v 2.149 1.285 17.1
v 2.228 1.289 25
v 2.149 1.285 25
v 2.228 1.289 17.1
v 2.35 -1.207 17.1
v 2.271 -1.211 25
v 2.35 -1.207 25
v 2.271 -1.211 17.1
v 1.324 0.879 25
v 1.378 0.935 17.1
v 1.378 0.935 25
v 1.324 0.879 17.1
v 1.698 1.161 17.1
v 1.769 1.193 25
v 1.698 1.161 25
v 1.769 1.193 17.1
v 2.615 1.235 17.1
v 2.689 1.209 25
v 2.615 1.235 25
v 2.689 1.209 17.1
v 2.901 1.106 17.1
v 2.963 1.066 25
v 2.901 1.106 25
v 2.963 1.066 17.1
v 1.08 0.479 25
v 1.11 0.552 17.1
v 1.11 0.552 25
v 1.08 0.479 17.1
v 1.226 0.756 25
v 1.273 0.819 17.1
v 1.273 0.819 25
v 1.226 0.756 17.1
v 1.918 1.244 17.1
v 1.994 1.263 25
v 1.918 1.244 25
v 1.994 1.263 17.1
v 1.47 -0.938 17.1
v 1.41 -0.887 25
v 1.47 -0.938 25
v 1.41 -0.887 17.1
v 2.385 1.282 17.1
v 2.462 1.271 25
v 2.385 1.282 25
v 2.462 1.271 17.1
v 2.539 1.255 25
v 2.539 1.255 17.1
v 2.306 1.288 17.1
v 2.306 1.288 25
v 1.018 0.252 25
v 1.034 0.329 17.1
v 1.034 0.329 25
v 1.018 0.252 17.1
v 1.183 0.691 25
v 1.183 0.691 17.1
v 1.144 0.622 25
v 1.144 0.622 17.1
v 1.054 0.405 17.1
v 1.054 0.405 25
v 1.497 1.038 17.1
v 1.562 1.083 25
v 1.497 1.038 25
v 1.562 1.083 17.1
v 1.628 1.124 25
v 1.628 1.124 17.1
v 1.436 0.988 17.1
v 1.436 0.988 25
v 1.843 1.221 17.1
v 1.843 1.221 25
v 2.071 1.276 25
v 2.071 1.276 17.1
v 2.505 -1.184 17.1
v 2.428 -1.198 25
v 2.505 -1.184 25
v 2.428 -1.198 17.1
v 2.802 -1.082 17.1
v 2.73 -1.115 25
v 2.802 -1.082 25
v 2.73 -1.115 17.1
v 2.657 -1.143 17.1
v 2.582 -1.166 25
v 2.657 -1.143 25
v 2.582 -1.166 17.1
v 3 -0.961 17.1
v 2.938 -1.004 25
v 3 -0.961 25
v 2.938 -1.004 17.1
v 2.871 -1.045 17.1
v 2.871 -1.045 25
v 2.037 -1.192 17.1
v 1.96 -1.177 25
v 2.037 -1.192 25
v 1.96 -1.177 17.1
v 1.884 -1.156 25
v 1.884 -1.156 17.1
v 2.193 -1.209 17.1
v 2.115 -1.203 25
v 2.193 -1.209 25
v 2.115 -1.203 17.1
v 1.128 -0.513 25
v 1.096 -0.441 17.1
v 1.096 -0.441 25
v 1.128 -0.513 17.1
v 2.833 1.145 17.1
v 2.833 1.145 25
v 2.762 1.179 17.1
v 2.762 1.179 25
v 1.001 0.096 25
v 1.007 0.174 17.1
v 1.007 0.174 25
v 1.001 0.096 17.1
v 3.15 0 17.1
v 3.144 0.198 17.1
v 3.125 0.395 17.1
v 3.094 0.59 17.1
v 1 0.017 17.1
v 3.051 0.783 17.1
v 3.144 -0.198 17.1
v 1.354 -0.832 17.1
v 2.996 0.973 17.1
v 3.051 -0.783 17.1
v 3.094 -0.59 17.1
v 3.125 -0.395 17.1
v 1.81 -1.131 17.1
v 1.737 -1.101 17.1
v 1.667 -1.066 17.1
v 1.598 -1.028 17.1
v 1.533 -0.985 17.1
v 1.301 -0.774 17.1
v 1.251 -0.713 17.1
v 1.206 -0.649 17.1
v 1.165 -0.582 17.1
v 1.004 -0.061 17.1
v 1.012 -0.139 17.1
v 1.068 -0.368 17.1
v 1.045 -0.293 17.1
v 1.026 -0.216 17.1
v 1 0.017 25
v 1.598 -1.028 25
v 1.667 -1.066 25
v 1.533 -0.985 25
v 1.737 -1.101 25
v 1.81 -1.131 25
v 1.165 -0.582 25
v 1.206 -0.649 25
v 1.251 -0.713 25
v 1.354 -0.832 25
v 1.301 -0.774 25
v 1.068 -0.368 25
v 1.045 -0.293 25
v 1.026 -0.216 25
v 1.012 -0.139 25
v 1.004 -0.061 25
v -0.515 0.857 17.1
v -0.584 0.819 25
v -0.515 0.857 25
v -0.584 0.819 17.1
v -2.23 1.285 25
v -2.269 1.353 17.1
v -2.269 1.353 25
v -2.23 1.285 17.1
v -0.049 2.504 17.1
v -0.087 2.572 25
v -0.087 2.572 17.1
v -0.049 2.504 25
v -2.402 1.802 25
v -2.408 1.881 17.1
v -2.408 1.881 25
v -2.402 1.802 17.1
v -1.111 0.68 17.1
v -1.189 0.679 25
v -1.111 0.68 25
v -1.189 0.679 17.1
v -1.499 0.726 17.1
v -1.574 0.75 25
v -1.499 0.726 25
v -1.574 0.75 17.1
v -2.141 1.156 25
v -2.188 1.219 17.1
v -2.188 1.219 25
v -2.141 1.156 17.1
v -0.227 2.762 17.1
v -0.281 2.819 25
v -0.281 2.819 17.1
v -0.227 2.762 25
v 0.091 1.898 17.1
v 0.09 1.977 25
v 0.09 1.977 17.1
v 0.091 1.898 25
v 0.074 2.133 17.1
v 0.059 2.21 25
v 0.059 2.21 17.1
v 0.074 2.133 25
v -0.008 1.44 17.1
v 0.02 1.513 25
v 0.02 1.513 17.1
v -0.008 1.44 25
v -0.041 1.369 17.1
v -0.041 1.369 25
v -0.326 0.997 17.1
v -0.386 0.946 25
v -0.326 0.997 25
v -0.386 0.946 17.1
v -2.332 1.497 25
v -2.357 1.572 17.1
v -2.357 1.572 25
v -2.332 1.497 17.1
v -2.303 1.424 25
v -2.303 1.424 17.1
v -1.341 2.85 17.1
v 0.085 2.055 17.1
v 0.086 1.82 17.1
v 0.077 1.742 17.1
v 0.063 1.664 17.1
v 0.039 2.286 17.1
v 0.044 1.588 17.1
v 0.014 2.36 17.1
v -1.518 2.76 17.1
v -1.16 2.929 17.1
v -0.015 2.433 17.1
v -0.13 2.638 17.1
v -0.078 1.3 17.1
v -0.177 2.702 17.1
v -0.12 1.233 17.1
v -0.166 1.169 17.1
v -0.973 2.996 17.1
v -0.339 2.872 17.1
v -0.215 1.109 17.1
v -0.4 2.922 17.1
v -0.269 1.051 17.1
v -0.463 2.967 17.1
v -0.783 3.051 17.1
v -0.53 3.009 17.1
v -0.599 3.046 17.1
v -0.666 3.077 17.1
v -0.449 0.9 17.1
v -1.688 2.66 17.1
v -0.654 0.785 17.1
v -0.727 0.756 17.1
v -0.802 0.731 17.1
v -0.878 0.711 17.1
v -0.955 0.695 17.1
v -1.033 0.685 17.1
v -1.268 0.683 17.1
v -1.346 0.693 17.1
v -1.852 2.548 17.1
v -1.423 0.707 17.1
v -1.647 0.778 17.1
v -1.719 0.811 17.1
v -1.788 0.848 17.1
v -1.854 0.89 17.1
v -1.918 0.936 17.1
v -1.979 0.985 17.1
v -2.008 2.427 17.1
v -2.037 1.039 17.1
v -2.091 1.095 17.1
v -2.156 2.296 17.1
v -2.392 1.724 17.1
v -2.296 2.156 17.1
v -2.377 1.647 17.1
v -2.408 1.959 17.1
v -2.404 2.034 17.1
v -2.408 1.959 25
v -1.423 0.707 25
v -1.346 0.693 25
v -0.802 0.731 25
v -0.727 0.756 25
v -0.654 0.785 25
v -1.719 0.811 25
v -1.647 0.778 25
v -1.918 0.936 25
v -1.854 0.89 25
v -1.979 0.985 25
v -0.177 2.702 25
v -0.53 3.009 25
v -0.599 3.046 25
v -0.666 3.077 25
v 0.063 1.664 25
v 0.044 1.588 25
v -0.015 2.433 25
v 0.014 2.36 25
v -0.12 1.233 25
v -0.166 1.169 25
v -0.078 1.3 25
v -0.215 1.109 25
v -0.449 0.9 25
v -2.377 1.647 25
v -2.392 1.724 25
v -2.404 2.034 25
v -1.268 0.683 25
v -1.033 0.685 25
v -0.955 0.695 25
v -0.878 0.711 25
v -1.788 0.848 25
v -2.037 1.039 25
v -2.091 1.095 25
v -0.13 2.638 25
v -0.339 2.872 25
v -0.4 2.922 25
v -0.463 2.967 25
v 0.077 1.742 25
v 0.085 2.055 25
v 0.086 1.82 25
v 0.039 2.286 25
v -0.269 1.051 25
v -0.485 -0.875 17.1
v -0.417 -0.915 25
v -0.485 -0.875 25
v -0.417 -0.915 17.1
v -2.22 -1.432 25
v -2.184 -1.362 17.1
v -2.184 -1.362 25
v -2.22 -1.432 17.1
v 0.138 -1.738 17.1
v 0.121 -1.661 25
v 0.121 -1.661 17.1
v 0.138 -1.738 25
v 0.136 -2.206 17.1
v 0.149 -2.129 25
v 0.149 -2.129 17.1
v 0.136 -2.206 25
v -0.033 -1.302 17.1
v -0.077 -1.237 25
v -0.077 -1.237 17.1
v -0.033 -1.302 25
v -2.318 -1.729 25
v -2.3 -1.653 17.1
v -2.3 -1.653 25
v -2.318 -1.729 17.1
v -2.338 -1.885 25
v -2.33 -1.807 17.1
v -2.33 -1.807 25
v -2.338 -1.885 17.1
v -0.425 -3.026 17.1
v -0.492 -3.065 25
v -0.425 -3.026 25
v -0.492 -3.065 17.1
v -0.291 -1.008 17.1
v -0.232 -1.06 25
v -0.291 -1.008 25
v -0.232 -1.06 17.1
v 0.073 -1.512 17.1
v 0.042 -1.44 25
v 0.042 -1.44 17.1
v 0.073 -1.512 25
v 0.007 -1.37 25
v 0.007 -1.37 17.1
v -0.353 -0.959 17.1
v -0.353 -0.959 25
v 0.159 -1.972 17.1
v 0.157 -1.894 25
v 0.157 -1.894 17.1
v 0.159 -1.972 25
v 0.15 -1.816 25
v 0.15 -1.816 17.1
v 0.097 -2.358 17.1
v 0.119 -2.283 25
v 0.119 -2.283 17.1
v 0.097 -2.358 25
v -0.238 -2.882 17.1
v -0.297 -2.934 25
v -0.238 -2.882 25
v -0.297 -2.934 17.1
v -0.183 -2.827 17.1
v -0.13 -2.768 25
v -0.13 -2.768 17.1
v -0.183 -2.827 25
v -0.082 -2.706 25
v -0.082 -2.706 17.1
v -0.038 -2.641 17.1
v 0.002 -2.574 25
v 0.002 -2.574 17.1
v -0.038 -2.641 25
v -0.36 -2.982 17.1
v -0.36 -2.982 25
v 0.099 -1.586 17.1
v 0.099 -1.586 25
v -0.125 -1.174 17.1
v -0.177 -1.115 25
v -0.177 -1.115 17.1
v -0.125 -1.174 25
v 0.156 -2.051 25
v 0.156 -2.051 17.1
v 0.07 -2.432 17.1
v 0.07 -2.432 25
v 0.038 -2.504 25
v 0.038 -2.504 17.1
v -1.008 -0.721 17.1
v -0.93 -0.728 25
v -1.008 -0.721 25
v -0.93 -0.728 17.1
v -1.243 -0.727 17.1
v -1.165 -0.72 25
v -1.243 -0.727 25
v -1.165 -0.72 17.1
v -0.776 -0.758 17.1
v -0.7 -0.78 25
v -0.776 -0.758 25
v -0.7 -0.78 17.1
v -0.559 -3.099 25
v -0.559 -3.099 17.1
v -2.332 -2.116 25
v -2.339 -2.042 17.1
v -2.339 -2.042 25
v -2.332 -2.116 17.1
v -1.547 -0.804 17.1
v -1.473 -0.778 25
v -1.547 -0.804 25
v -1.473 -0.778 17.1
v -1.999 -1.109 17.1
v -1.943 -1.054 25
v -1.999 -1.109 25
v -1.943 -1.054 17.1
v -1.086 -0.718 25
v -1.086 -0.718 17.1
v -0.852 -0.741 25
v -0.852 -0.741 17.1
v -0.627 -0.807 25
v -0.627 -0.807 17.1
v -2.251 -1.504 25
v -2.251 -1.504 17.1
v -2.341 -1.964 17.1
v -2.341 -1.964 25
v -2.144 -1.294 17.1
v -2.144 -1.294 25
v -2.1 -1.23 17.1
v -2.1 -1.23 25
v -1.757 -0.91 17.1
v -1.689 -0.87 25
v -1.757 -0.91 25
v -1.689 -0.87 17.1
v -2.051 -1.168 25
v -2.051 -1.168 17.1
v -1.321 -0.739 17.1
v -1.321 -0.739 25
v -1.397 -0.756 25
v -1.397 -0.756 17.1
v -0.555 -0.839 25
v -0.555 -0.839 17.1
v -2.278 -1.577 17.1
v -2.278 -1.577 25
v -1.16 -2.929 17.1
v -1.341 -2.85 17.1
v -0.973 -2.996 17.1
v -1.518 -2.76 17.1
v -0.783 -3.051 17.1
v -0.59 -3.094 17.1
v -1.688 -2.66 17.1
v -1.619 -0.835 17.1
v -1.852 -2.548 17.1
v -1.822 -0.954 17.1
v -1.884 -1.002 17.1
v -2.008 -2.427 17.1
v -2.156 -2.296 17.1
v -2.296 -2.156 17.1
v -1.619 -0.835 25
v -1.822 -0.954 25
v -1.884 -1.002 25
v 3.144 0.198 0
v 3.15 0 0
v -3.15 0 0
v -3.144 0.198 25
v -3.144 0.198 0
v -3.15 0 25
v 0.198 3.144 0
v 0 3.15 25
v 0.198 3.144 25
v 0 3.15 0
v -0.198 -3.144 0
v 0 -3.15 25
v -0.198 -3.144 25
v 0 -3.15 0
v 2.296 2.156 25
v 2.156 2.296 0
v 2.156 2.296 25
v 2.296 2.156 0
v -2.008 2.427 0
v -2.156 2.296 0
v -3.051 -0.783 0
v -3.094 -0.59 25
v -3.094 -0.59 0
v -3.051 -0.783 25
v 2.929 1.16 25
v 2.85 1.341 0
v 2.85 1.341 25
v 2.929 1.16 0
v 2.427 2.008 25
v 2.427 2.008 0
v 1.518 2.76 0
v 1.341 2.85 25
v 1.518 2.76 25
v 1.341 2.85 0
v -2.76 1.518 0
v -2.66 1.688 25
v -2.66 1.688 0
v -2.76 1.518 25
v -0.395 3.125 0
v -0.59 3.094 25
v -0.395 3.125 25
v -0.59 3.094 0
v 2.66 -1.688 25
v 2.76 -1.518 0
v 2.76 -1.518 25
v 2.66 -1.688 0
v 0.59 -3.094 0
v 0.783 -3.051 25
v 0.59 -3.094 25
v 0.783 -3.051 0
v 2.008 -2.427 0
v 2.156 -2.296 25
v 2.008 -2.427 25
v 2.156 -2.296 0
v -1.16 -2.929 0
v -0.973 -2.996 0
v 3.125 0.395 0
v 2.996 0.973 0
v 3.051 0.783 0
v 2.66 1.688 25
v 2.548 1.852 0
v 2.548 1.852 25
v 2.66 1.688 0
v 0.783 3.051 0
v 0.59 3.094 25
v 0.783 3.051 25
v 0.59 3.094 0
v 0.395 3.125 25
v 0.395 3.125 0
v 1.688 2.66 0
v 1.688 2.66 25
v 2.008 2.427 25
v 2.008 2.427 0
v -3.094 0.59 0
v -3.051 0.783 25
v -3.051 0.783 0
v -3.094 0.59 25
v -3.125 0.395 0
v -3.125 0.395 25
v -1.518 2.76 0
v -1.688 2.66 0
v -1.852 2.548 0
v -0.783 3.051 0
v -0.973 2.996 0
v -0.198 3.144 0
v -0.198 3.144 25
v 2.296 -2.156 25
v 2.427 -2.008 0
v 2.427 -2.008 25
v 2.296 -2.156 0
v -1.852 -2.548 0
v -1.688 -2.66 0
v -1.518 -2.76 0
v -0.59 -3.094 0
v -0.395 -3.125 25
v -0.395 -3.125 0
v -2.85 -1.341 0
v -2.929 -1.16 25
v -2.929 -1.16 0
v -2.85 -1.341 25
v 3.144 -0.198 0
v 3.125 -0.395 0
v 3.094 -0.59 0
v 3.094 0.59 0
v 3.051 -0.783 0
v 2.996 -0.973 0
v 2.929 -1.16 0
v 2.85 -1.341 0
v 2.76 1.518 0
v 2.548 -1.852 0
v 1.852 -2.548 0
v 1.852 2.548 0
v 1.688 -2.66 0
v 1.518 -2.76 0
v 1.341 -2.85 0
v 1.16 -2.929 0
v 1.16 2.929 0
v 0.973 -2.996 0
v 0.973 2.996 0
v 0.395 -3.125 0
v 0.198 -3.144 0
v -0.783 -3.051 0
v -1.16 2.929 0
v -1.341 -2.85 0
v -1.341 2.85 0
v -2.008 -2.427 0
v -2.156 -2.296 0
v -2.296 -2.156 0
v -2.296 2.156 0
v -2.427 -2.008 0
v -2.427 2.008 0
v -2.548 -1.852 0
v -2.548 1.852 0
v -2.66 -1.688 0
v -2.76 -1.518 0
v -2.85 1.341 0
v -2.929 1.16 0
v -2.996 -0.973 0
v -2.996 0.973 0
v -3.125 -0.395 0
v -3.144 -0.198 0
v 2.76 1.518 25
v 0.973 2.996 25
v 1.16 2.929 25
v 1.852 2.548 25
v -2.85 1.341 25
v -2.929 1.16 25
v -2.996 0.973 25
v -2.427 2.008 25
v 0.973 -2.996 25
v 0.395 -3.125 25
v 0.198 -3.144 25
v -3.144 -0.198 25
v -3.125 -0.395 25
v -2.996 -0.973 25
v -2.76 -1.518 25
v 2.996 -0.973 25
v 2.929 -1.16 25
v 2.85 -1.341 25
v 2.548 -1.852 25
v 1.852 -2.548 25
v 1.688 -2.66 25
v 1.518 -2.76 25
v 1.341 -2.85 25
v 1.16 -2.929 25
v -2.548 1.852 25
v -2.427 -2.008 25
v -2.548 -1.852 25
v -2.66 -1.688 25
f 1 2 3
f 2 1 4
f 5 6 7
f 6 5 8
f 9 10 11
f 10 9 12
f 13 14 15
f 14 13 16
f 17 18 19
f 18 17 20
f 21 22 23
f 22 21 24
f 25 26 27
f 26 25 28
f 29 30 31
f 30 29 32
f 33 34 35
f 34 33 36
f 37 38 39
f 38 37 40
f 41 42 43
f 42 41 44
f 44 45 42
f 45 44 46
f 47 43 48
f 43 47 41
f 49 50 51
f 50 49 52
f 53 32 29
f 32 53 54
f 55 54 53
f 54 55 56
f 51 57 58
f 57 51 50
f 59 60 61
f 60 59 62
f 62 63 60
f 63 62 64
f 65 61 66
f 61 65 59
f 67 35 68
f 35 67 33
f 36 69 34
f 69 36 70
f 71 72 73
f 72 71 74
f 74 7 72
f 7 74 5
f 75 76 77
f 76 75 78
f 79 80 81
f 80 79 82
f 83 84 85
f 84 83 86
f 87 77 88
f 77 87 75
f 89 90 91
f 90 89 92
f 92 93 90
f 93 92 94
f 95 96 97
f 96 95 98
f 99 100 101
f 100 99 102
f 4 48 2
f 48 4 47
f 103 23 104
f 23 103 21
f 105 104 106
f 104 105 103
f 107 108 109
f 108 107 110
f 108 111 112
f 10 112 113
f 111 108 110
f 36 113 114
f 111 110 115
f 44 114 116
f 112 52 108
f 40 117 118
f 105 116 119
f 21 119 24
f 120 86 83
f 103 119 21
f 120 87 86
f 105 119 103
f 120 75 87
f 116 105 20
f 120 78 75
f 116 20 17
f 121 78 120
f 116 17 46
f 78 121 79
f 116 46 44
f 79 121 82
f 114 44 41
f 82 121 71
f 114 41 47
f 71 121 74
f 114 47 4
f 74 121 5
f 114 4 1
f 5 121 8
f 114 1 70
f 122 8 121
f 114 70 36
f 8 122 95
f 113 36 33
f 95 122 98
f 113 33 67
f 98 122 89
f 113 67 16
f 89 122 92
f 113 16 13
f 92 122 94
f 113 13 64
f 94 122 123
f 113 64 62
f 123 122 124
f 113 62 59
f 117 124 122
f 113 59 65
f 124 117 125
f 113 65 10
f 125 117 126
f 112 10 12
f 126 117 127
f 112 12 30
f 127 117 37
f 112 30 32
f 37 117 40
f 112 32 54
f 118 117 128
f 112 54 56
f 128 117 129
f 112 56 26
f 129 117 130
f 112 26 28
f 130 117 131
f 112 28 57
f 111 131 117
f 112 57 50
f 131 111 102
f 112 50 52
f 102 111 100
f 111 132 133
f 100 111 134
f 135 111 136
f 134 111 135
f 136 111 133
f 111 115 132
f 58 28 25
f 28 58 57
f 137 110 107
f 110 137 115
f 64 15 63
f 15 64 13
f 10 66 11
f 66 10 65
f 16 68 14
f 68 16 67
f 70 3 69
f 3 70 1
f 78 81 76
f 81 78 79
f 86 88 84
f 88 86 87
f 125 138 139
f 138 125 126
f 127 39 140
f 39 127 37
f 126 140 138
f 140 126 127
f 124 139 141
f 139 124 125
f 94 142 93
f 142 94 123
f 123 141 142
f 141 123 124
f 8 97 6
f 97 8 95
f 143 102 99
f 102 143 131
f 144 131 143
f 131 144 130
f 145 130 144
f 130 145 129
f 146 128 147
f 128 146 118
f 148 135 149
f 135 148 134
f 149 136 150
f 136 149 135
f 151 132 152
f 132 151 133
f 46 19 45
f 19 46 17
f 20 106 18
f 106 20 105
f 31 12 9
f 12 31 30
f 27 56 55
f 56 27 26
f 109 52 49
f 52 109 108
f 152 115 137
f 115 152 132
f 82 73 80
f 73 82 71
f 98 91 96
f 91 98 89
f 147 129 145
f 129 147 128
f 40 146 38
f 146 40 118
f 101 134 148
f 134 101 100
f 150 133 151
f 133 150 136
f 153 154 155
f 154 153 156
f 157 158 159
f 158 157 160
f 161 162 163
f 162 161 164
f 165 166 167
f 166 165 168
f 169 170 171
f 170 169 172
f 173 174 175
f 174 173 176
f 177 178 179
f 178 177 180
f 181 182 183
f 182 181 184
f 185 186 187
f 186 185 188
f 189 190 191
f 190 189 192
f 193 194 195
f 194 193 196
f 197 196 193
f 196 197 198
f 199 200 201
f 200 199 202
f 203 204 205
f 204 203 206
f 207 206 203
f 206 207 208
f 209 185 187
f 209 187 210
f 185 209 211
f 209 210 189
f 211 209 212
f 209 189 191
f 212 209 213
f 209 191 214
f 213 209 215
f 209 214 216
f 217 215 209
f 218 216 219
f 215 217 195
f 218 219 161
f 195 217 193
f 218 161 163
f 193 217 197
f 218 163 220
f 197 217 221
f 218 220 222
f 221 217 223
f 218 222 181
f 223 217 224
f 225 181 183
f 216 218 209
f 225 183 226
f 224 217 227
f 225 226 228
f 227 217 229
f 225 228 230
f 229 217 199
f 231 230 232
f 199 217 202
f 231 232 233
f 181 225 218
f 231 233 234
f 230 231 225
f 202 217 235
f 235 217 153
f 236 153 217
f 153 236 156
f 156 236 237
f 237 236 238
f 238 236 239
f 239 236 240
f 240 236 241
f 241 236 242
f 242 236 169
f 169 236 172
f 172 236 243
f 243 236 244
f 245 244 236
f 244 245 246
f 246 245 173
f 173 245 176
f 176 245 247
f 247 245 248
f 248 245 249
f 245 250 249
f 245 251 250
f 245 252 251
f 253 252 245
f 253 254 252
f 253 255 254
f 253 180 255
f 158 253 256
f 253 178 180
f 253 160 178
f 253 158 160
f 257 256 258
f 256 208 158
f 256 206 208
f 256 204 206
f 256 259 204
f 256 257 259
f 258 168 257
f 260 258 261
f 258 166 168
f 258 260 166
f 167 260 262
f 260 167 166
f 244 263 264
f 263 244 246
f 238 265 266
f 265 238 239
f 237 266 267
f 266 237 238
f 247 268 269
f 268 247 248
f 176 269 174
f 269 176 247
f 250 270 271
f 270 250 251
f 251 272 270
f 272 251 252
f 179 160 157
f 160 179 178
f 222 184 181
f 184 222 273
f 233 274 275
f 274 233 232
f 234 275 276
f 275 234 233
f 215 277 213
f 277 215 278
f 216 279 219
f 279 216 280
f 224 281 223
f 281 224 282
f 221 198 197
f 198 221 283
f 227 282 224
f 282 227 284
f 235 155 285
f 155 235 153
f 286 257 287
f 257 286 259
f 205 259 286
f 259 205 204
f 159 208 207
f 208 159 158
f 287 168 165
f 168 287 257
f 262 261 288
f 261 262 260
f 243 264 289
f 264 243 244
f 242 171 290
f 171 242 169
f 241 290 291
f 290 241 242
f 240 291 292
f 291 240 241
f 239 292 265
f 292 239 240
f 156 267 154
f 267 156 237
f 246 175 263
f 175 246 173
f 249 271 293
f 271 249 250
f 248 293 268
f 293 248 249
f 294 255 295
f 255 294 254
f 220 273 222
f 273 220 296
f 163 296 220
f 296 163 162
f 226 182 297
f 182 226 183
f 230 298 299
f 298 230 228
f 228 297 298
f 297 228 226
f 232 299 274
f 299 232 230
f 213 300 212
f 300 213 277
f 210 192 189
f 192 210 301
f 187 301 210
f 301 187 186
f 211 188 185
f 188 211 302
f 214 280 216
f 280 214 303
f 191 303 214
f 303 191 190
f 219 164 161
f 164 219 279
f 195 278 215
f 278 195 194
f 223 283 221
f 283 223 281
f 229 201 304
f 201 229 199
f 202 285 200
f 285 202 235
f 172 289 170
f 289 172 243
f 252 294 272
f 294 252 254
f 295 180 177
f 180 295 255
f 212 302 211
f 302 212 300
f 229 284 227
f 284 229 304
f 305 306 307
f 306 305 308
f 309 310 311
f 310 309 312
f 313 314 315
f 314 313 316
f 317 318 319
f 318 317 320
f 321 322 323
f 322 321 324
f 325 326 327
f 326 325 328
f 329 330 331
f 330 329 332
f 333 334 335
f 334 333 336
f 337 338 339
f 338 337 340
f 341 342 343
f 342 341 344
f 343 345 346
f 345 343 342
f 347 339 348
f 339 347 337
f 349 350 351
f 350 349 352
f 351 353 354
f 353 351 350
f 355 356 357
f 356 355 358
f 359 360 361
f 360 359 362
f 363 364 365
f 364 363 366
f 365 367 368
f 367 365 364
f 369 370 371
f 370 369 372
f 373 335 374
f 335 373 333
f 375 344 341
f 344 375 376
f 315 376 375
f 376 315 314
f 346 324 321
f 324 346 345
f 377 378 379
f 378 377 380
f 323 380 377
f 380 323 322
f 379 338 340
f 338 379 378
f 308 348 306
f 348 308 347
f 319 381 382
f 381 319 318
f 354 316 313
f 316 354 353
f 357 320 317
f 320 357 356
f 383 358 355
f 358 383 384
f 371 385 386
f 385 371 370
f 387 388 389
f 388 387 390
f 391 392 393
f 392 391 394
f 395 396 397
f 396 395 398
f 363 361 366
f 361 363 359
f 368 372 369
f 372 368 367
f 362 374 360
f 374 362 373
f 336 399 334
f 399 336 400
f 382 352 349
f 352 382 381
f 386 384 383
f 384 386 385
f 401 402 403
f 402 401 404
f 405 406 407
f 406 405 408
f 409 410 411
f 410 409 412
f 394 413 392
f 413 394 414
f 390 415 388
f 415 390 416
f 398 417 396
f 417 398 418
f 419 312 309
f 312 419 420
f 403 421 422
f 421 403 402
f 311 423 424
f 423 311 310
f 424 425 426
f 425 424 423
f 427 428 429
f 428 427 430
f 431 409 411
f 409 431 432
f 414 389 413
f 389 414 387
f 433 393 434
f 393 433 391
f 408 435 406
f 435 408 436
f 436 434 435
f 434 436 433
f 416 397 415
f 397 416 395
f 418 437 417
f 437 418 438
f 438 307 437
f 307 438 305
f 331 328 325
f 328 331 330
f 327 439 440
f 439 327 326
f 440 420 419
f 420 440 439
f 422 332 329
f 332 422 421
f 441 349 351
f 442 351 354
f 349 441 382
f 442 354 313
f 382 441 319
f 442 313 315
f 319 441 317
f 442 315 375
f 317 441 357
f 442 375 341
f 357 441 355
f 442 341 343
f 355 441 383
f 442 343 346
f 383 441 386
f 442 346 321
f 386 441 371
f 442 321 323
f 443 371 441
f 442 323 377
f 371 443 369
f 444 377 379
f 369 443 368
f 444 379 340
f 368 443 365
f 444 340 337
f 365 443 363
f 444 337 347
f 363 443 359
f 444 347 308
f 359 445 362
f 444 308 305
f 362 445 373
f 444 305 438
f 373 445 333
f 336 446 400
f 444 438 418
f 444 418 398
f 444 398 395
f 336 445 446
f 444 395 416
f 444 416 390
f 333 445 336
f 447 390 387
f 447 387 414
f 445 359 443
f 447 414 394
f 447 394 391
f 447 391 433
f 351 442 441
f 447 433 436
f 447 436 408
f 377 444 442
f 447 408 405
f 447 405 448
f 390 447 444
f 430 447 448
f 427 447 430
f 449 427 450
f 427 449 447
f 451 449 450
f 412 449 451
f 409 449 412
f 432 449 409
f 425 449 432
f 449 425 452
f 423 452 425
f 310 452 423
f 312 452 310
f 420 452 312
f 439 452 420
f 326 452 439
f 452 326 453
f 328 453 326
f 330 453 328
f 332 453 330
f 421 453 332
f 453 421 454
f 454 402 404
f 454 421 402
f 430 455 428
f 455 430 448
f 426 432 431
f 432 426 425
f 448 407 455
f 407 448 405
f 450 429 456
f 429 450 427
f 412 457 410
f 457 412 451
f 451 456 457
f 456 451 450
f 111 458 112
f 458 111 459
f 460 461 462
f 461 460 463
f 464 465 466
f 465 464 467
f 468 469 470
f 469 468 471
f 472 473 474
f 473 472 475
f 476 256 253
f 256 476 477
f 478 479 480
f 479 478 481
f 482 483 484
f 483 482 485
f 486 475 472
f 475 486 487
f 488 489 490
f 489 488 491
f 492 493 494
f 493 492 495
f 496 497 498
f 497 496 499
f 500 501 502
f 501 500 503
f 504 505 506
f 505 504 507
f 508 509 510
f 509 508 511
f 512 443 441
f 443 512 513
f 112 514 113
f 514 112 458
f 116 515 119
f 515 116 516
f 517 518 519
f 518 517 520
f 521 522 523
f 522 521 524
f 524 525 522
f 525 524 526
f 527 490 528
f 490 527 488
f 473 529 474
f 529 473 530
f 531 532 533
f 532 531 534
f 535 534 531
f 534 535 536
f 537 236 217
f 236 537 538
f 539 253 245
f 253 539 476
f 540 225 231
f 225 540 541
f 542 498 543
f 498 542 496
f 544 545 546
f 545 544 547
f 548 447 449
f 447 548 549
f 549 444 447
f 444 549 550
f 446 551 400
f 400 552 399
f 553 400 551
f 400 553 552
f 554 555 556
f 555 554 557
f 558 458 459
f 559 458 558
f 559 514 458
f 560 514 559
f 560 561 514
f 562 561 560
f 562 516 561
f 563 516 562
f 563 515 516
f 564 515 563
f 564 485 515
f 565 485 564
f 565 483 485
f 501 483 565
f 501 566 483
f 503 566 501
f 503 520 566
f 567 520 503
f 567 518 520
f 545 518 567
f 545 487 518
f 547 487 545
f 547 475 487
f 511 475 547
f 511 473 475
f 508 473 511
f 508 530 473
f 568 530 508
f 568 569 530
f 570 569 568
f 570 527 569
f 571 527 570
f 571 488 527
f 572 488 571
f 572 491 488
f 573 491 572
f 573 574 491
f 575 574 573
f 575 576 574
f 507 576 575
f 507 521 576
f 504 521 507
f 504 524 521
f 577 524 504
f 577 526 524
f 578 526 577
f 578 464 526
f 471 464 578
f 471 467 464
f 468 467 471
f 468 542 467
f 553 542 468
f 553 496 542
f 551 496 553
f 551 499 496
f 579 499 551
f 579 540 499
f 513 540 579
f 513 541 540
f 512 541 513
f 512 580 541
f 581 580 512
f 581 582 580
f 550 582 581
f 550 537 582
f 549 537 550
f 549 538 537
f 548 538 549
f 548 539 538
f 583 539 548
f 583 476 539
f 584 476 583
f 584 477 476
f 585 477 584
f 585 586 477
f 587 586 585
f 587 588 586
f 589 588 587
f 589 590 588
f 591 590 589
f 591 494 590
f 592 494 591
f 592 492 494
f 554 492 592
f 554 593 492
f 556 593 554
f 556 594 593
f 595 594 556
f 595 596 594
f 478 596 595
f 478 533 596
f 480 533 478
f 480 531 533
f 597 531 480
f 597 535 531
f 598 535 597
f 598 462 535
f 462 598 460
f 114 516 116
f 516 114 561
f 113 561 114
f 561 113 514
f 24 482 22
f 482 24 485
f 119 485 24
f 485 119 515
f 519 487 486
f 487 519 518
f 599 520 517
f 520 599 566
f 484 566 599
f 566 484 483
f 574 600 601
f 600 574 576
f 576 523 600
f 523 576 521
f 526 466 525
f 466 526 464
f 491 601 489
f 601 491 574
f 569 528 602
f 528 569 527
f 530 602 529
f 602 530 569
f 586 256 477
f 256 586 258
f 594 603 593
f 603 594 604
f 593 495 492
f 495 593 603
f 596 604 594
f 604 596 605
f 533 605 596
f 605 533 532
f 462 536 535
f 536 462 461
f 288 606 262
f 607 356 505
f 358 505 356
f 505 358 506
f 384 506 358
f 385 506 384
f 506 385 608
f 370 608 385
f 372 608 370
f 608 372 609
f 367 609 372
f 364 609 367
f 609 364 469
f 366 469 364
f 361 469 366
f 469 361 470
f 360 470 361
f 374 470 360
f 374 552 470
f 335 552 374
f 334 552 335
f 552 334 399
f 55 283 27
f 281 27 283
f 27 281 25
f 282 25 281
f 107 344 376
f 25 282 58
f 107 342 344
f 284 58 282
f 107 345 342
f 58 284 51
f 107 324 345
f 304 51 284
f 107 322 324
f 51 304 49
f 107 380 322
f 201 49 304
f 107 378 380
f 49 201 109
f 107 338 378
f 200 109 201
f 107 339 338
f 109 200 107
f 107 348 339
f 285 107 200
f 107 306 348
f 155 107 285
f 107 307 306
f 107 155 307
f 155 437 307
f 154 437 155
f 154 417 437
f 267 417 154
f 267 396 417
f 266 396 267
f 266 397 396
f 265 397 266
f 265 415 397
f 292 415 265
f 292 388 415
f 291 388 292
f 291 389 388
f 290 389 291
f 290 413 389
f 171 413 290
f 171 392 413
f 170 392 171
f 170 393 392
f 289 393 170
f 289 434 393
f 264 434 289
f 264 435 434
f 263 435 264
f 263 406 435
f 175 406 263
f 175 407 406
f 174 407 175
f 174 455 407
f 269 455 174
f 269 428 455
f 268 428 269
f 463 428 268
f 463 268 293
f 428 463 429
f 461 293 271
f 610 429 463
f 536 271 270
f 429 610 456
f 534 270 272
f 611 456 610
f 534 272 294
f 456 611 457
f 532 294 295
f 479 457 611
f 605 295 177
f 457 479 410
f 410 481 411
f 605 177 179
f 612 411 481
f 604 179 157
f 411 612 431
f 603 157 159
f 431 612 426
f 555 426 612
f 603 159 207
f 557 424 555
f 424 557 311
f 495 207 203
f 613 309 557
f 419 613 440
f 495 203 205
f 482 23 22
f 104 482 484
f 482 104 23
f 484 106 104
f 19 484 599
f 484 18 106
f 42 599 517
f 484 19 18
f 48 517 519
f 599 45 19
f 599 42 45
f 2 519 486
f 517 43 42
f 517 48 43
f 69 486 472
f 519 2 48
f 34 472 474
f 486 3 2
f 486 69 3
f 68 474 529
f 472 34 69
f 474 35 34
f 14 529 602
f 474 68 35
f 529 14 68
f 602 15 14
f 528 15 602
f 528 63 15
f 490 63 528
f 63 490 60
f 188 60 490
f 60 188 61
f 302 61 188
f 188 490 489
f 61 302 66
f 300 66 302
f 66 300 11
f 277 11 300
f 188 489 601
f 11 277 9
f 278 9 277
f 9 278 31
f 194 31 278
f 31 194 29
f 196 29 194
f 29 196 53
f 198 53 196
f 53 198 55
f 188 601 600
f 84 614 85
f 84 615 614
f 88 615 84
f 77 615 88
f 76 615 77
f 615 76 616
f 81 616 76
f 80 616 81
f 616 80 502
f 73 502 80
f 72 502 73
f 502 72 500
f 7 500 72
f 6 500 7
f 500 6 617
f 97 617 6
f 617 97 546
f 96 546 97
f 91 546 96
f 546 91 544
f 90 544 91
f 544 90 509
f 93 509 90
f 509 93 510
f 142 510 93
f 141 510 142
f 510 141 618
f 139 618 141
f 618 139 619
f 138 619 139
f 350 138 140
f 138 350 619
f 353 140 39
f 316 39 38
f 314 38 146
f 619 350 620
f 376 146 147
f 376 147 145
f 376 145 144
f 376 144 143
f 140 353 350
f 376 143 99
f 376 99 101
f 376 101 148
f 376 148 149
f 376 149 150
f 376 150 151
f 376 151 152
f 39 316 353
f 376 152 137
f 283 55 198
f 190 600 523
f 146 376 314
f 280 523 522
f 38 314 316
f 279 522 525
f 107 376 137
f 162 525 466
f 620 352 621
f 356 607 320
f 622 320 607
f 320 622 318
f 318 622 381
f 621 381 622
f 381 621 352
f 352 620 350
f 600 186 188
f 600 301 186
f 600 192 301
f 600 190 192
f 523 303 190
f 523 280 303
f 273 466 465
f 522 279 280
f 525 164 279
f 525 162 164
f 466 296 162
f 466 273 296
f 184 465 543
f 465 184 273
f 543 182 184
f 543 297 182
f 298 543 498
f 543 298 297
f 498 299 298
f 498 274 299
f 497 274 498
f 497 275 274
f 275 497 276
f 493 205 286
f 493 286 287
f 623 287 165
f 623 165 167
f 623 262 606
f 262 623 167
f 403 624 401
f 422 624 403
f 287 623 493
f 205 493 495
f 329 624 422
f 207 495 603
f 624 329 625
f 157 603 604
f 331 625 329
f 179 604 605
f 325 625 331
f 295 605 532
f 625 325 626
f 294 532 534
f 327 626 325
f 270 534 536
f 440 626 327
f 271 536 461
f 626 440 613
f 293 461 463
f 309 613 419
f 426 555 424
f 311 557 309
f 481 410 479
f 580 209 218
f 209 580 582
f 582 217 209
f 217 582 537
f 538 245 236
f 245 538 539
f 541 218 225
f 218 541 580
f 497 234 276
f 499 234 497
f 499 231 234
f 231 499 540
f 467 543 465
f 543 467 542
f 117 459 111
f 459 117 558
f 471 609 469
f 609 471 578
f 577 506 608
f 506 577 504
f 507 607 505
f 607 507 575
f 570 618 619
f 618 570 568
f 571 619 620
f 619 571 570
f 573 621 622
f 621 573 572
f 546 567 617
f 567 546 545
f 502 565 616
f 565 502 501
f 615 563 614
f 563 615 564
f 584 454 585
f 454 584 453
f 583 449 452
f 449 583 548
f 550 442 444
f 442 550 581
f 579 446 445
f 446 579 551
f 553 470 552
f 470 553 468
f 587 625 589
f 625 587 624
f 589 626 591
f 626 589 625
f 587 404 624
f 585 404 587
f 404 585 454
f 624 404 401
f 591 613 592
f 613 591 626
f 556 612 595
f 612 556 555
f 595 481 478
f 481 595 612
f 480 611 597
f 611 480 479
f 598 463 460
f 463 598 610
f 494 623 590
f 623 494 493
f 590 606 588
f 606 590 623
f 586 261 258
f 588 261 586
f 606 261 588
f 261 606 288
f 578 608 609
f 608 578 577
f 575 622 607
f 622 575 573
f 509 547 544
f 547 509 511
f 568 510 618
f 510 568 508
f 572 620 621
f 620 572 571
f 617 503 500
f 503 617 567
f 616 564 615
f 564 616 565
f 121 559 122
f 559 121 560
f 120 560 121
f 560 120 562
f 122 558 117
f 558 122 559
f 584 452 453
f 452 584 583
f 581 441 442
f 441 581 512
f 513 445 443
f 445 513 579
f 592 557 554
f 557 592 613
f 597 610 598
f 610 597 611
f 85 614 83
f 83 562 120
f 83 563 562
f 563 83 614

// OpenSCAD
$fn = 100;

module drillhole() {
    cylinder(d=2.5, h=8);
            }

height = 25;
difference(){
       cylinder(d=6.3, h=height);        
       for ( angle = [1:120:360])
           rotate([0,0,angle]) translate([2.25,0,height-7.9]) drillhole();
   }
